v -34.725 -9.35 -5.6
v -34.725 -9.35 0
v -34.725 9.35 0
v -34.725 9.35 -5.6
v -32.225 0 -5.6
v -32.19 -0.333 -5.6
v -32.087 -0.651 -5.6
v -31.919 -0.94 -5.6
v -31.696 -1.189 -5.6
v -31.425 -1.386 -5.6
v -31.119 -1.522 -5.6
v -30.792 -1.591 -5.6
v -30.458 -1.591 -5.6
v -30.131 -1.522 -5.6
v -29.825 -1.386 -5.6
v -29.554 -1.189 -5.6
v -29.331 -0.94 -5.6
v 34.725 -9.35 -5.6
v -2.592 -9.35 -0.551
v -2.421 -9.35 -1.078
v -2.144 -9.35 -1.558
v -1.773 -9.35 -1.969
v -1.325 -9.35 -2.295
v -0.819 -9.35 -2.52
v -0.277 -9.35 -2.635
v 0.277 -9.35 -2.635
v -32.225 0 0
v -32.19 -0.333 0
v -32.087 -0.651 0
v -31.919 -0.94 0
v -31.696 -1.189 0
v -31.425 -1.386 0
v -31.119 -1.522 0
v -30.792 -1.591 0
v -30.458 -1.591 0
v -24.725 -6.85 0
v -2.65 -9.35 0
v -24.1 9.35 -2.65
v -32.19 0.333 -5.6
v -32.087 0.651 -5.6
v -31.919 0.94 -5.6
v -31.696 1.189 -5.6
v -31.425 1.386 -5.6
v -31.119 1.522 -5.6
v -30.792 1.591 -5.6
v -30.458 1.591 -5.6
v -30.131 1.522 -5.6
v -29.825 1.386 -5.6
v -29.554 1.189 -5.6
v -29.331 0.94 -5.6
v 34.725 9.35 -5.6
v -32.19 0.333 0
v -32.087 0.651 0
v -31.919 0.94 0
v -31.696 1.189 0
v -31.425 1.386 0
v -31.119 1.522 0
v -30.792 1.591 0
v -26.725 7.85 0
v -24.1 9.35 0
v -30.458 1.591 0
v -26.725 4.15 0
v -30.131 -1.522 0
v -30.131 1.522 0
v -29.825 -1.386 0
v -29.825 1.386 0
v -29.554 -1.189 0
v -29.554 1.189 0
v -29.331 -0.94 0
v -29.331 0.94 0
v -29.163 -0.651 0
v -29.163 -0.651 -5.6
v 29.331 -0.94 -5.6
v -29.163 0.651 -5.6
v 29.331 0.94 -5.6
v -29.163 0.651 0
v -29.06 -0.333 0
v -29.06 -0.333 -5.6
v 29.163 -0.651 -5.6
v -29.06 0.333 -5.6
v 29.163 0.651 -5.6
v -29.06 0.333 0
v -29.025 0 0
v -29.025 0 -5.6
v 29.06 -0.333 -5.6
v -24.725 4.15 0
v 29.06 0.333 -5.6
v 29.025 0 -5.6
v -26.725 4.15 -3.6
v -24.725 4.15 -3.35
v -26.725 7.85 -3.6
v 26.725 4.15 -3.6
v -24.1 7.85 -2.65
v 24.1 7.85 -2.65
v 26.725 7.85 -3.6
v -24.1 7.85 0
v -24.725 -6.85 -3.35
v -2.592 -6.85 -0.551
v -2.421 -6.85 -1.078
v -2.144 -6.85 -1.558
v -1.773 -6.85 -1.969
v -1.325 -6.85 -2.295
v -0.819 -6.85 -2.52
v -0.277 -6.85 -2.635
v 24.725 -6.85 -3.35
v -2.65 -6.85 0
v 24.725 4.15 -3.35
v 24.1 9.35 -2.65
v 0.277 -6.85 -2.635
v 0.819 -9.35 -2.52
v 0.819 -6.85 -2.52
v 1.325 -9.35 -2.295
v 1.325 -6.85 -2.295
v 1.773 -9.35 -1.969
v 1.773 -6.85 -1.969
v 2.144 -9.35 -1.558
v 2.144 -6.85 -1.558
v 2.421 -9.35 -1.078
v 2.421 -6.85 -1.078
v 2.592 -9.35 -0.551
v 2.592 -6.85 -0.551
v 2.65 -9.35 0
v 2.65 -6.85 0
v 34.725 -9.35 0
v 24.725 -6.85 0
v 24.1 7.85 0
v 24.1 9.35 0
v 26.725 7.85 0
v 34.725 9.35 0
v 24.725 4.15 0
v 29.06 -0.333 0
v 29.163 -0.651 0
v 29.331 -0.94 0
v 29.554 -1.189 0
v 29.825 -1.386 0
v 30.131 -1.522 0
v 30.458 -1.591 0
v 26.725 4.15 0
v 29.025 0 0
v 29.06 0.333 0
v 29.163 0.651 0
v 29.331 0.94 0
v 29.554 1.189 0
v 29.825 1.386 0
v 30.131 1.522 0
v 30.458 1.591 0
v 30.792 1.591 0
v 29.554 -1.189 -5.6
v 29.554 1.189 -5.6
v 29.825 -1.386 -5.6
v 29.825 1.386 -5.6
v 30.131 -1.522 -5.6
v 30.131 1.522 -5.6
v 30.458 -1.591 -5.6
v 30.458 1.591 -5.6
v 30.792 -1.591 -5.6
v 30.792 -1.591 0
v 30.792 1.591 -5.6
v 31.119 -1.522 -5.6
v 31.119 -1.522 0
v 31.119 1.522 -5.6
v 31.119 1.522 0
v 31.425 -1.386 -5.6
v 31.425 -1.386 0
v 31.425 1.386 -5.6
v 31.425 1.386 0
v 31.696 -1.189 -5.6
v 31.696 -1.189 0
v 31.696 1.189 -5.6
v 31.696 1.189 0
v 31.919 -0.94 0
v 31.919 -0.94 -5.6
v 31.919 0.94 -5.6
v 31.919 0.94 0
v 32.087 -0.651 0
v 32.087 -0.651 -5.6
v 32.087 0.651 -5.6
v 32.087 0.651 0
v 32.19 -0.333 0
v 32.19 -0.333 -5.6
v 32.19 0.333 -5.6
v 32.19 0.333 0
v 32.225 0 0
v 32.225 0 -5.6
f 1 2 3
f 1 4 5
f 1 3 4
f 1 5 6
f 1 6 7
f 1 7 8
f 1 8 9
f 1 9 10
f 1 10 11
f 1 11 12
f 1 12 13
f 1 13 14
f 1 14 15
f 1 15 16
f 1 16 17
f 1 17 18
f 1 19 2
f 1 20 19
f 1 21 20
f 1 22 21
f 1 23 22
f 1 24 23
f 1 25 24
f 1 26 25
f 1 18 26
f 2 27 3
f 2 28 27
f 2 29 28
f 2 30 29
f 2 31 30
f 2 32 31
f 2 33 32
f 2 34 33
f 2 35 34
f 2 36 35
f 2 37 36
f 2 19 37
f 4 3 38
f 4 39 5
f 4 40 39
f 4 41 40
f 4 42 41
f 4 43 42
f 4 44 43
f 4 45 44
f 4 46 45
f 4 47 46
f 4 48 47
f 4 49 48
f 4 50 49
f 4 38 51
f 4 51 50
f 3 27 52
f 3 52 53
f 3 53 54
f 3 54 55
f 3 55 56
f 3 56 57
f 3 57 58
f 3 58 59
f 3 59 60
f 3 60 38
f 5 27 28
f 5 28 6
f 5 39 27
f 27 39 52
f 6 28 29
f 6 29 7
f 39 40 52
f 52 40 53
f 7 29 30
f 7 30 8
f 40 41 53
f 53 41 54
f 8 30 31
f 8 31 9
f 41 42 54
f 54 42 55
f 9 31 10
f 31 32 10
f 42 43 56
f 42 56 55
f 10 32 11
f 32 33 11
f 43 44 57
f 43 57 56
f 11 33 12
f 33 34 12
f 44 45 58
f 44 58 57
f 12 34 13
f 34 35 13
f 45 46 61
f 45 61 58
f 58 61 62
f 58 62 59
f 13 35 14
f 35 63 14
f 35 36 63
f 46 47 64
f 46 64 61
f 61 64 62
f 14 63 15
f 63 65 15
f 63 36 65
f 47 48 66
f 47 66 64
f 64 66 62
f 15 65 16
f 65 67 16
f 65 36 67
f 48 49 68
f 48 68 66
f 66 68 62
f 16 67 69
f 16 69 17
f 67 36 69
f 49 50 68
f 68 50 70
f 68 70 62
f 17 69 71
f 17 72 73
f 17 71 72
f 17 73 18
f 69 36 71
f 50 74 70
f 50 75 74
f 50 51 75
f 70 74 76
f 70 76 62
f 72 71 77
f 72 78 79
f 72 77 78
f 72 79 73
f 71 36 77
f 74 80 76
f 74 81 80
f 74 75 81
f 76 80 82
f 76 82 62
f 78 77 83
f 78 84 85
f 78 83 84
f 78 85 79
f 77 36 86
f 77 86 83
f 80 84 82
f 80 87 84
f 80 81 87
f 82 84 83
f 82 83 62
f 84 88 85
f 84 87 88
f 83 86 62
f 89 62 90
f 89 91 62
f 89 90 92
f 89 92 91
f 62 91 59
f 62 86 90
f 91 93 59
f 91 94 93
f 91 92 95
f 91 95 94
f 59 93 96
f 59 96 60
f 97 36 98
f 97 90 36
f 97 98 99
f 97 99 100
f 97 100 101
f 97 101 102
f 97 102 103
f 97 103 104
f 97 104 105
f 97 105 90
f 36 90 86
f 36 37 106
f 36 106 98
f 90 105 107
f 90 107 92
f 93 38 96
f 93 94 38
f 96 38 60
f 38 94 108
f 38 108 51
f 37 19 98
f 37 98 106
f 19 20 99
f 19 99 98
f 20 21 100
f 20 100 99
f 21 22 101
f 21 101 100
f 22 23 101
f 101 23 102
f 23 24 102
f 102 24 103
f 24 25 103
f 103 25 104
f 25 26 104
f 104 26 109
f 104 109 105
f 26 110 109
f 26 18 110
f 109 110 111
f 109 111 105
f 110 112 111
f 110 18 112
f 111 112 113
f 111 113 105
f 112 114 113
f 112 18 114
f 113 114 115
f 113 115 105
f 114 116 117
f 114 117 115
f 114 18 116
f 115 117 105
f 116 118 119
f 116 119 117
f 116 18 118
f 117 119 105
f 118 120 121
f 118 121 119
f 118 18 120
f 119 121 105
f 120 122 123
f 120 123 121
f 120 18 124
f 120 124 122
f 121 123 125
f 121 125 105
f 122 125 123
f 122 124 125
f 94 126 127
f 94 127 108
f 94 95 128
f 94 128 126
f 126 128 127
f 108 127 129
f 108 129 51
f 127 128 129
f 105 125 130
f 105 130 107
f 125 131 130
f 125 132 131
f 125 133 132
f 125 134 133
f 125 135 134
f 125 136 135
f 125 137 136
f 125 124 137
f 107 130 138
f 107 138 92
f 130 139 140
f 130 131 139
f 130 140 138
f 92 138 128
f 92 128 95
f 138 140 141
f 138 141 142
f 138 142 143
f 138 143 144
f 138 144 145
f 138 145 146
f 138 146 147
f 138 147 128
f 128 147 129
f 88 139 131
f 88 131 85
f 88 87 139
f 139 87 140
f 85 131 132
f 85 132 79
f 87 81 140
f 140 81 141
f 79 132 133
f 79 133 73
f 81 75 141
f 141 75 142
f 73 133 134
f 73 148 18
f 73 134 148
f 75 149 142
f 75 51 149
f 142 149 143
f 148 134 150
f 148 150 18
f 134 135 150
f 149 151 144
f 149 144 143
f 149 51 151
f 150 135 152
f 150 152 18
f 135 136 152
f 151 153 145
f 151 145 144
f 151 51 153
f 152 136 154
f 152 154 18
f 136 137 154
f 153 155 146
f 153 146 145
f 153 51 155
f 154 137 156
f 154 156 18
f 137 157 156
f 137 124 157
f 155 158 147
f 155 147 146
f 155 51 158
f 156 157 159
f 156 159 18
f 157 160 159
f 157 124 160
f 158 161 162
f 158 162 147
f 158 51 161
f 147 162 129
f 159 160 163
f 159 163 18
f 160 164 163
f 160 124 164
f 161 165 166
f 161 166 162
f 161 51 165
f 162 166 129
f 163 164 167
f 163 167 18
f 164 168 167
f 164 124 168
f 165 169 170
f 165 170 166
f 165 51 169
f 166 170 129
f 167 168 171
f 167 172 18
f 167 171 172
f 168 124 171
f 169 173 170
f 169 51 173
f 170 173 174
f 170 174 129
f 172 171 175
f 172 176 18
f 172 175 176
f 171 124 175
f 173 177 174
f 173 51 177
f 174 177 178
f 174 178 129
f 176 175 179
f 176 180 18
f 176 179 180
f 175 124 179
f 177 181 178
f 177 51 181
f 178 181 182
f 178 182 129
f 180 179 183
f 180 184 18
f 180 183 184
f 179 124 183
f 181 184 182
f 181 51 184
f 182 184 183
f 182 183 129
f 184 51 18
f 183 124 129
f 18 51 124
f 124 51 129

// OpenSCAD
// a connector housing for the EEG electrode harness
// CC BY SA 4.0 Andre M Chagas 04/04/2022

conThick = 5.6;
conLen = 48;
conHei = 5.1;



bodyThick = 3.5;
bodyLen = 53.25;
bodyHei = 7;
tol = 0.1;
$fn=30;
screwD = 3;
cableD=5.1;
module connector(){
    translate([0,conThick-2,0]){
    cube([conLen+2*tol,conThick+2*tol,conHei+2*tol],center=true);
    }//end translate
    cube([bodyLen+2*tol,bodyThick+2*tol,bodyHei+2*tol],center=true);
    
   
}//end module

module housing(){
difference(){
cube([bodyLen+2*tol+2*screwD+10,bodyThick+2*tol+15,bodyHei+2*tol+4],center =true);

translate([0,+6,0]){
    connector();
}//end translate
translate([0,0,0]){
    cube([bodyLen+2*tol-4,bodyThick+2*tol+10,bodyHei+2*tol-0.5],center=true);
}//end translate
//translate([2,2,3]){
//cube([bodyLen+2*tol,bodyThick+2*tol+10,bodyHei-2]);
//}//end translate
translate([bodyLen/2+4,0,-8]){
    cylinder(d=screwD+2*tol,h=bodyHei+10);
}//end translate

translate([-(bodyLen/2+4),0,-8]){
    cylinder(d=screwD+2*tol,h=bodyHei+10);
}//end translate


rotate([90,0,0]){
    cylinder(d=cableD+2*tol,h=10);
    }//end rotate
}//end difference
}//end module

difference(){
housing();
translate([0,0,(bodyHei+2*tol+4)/2]){
cube([bodyLen+2*tol+2*screwD+11,bodyThick+2*tol+16,bodyHei+2*tol+4],center =true);
}
}//end difference()
